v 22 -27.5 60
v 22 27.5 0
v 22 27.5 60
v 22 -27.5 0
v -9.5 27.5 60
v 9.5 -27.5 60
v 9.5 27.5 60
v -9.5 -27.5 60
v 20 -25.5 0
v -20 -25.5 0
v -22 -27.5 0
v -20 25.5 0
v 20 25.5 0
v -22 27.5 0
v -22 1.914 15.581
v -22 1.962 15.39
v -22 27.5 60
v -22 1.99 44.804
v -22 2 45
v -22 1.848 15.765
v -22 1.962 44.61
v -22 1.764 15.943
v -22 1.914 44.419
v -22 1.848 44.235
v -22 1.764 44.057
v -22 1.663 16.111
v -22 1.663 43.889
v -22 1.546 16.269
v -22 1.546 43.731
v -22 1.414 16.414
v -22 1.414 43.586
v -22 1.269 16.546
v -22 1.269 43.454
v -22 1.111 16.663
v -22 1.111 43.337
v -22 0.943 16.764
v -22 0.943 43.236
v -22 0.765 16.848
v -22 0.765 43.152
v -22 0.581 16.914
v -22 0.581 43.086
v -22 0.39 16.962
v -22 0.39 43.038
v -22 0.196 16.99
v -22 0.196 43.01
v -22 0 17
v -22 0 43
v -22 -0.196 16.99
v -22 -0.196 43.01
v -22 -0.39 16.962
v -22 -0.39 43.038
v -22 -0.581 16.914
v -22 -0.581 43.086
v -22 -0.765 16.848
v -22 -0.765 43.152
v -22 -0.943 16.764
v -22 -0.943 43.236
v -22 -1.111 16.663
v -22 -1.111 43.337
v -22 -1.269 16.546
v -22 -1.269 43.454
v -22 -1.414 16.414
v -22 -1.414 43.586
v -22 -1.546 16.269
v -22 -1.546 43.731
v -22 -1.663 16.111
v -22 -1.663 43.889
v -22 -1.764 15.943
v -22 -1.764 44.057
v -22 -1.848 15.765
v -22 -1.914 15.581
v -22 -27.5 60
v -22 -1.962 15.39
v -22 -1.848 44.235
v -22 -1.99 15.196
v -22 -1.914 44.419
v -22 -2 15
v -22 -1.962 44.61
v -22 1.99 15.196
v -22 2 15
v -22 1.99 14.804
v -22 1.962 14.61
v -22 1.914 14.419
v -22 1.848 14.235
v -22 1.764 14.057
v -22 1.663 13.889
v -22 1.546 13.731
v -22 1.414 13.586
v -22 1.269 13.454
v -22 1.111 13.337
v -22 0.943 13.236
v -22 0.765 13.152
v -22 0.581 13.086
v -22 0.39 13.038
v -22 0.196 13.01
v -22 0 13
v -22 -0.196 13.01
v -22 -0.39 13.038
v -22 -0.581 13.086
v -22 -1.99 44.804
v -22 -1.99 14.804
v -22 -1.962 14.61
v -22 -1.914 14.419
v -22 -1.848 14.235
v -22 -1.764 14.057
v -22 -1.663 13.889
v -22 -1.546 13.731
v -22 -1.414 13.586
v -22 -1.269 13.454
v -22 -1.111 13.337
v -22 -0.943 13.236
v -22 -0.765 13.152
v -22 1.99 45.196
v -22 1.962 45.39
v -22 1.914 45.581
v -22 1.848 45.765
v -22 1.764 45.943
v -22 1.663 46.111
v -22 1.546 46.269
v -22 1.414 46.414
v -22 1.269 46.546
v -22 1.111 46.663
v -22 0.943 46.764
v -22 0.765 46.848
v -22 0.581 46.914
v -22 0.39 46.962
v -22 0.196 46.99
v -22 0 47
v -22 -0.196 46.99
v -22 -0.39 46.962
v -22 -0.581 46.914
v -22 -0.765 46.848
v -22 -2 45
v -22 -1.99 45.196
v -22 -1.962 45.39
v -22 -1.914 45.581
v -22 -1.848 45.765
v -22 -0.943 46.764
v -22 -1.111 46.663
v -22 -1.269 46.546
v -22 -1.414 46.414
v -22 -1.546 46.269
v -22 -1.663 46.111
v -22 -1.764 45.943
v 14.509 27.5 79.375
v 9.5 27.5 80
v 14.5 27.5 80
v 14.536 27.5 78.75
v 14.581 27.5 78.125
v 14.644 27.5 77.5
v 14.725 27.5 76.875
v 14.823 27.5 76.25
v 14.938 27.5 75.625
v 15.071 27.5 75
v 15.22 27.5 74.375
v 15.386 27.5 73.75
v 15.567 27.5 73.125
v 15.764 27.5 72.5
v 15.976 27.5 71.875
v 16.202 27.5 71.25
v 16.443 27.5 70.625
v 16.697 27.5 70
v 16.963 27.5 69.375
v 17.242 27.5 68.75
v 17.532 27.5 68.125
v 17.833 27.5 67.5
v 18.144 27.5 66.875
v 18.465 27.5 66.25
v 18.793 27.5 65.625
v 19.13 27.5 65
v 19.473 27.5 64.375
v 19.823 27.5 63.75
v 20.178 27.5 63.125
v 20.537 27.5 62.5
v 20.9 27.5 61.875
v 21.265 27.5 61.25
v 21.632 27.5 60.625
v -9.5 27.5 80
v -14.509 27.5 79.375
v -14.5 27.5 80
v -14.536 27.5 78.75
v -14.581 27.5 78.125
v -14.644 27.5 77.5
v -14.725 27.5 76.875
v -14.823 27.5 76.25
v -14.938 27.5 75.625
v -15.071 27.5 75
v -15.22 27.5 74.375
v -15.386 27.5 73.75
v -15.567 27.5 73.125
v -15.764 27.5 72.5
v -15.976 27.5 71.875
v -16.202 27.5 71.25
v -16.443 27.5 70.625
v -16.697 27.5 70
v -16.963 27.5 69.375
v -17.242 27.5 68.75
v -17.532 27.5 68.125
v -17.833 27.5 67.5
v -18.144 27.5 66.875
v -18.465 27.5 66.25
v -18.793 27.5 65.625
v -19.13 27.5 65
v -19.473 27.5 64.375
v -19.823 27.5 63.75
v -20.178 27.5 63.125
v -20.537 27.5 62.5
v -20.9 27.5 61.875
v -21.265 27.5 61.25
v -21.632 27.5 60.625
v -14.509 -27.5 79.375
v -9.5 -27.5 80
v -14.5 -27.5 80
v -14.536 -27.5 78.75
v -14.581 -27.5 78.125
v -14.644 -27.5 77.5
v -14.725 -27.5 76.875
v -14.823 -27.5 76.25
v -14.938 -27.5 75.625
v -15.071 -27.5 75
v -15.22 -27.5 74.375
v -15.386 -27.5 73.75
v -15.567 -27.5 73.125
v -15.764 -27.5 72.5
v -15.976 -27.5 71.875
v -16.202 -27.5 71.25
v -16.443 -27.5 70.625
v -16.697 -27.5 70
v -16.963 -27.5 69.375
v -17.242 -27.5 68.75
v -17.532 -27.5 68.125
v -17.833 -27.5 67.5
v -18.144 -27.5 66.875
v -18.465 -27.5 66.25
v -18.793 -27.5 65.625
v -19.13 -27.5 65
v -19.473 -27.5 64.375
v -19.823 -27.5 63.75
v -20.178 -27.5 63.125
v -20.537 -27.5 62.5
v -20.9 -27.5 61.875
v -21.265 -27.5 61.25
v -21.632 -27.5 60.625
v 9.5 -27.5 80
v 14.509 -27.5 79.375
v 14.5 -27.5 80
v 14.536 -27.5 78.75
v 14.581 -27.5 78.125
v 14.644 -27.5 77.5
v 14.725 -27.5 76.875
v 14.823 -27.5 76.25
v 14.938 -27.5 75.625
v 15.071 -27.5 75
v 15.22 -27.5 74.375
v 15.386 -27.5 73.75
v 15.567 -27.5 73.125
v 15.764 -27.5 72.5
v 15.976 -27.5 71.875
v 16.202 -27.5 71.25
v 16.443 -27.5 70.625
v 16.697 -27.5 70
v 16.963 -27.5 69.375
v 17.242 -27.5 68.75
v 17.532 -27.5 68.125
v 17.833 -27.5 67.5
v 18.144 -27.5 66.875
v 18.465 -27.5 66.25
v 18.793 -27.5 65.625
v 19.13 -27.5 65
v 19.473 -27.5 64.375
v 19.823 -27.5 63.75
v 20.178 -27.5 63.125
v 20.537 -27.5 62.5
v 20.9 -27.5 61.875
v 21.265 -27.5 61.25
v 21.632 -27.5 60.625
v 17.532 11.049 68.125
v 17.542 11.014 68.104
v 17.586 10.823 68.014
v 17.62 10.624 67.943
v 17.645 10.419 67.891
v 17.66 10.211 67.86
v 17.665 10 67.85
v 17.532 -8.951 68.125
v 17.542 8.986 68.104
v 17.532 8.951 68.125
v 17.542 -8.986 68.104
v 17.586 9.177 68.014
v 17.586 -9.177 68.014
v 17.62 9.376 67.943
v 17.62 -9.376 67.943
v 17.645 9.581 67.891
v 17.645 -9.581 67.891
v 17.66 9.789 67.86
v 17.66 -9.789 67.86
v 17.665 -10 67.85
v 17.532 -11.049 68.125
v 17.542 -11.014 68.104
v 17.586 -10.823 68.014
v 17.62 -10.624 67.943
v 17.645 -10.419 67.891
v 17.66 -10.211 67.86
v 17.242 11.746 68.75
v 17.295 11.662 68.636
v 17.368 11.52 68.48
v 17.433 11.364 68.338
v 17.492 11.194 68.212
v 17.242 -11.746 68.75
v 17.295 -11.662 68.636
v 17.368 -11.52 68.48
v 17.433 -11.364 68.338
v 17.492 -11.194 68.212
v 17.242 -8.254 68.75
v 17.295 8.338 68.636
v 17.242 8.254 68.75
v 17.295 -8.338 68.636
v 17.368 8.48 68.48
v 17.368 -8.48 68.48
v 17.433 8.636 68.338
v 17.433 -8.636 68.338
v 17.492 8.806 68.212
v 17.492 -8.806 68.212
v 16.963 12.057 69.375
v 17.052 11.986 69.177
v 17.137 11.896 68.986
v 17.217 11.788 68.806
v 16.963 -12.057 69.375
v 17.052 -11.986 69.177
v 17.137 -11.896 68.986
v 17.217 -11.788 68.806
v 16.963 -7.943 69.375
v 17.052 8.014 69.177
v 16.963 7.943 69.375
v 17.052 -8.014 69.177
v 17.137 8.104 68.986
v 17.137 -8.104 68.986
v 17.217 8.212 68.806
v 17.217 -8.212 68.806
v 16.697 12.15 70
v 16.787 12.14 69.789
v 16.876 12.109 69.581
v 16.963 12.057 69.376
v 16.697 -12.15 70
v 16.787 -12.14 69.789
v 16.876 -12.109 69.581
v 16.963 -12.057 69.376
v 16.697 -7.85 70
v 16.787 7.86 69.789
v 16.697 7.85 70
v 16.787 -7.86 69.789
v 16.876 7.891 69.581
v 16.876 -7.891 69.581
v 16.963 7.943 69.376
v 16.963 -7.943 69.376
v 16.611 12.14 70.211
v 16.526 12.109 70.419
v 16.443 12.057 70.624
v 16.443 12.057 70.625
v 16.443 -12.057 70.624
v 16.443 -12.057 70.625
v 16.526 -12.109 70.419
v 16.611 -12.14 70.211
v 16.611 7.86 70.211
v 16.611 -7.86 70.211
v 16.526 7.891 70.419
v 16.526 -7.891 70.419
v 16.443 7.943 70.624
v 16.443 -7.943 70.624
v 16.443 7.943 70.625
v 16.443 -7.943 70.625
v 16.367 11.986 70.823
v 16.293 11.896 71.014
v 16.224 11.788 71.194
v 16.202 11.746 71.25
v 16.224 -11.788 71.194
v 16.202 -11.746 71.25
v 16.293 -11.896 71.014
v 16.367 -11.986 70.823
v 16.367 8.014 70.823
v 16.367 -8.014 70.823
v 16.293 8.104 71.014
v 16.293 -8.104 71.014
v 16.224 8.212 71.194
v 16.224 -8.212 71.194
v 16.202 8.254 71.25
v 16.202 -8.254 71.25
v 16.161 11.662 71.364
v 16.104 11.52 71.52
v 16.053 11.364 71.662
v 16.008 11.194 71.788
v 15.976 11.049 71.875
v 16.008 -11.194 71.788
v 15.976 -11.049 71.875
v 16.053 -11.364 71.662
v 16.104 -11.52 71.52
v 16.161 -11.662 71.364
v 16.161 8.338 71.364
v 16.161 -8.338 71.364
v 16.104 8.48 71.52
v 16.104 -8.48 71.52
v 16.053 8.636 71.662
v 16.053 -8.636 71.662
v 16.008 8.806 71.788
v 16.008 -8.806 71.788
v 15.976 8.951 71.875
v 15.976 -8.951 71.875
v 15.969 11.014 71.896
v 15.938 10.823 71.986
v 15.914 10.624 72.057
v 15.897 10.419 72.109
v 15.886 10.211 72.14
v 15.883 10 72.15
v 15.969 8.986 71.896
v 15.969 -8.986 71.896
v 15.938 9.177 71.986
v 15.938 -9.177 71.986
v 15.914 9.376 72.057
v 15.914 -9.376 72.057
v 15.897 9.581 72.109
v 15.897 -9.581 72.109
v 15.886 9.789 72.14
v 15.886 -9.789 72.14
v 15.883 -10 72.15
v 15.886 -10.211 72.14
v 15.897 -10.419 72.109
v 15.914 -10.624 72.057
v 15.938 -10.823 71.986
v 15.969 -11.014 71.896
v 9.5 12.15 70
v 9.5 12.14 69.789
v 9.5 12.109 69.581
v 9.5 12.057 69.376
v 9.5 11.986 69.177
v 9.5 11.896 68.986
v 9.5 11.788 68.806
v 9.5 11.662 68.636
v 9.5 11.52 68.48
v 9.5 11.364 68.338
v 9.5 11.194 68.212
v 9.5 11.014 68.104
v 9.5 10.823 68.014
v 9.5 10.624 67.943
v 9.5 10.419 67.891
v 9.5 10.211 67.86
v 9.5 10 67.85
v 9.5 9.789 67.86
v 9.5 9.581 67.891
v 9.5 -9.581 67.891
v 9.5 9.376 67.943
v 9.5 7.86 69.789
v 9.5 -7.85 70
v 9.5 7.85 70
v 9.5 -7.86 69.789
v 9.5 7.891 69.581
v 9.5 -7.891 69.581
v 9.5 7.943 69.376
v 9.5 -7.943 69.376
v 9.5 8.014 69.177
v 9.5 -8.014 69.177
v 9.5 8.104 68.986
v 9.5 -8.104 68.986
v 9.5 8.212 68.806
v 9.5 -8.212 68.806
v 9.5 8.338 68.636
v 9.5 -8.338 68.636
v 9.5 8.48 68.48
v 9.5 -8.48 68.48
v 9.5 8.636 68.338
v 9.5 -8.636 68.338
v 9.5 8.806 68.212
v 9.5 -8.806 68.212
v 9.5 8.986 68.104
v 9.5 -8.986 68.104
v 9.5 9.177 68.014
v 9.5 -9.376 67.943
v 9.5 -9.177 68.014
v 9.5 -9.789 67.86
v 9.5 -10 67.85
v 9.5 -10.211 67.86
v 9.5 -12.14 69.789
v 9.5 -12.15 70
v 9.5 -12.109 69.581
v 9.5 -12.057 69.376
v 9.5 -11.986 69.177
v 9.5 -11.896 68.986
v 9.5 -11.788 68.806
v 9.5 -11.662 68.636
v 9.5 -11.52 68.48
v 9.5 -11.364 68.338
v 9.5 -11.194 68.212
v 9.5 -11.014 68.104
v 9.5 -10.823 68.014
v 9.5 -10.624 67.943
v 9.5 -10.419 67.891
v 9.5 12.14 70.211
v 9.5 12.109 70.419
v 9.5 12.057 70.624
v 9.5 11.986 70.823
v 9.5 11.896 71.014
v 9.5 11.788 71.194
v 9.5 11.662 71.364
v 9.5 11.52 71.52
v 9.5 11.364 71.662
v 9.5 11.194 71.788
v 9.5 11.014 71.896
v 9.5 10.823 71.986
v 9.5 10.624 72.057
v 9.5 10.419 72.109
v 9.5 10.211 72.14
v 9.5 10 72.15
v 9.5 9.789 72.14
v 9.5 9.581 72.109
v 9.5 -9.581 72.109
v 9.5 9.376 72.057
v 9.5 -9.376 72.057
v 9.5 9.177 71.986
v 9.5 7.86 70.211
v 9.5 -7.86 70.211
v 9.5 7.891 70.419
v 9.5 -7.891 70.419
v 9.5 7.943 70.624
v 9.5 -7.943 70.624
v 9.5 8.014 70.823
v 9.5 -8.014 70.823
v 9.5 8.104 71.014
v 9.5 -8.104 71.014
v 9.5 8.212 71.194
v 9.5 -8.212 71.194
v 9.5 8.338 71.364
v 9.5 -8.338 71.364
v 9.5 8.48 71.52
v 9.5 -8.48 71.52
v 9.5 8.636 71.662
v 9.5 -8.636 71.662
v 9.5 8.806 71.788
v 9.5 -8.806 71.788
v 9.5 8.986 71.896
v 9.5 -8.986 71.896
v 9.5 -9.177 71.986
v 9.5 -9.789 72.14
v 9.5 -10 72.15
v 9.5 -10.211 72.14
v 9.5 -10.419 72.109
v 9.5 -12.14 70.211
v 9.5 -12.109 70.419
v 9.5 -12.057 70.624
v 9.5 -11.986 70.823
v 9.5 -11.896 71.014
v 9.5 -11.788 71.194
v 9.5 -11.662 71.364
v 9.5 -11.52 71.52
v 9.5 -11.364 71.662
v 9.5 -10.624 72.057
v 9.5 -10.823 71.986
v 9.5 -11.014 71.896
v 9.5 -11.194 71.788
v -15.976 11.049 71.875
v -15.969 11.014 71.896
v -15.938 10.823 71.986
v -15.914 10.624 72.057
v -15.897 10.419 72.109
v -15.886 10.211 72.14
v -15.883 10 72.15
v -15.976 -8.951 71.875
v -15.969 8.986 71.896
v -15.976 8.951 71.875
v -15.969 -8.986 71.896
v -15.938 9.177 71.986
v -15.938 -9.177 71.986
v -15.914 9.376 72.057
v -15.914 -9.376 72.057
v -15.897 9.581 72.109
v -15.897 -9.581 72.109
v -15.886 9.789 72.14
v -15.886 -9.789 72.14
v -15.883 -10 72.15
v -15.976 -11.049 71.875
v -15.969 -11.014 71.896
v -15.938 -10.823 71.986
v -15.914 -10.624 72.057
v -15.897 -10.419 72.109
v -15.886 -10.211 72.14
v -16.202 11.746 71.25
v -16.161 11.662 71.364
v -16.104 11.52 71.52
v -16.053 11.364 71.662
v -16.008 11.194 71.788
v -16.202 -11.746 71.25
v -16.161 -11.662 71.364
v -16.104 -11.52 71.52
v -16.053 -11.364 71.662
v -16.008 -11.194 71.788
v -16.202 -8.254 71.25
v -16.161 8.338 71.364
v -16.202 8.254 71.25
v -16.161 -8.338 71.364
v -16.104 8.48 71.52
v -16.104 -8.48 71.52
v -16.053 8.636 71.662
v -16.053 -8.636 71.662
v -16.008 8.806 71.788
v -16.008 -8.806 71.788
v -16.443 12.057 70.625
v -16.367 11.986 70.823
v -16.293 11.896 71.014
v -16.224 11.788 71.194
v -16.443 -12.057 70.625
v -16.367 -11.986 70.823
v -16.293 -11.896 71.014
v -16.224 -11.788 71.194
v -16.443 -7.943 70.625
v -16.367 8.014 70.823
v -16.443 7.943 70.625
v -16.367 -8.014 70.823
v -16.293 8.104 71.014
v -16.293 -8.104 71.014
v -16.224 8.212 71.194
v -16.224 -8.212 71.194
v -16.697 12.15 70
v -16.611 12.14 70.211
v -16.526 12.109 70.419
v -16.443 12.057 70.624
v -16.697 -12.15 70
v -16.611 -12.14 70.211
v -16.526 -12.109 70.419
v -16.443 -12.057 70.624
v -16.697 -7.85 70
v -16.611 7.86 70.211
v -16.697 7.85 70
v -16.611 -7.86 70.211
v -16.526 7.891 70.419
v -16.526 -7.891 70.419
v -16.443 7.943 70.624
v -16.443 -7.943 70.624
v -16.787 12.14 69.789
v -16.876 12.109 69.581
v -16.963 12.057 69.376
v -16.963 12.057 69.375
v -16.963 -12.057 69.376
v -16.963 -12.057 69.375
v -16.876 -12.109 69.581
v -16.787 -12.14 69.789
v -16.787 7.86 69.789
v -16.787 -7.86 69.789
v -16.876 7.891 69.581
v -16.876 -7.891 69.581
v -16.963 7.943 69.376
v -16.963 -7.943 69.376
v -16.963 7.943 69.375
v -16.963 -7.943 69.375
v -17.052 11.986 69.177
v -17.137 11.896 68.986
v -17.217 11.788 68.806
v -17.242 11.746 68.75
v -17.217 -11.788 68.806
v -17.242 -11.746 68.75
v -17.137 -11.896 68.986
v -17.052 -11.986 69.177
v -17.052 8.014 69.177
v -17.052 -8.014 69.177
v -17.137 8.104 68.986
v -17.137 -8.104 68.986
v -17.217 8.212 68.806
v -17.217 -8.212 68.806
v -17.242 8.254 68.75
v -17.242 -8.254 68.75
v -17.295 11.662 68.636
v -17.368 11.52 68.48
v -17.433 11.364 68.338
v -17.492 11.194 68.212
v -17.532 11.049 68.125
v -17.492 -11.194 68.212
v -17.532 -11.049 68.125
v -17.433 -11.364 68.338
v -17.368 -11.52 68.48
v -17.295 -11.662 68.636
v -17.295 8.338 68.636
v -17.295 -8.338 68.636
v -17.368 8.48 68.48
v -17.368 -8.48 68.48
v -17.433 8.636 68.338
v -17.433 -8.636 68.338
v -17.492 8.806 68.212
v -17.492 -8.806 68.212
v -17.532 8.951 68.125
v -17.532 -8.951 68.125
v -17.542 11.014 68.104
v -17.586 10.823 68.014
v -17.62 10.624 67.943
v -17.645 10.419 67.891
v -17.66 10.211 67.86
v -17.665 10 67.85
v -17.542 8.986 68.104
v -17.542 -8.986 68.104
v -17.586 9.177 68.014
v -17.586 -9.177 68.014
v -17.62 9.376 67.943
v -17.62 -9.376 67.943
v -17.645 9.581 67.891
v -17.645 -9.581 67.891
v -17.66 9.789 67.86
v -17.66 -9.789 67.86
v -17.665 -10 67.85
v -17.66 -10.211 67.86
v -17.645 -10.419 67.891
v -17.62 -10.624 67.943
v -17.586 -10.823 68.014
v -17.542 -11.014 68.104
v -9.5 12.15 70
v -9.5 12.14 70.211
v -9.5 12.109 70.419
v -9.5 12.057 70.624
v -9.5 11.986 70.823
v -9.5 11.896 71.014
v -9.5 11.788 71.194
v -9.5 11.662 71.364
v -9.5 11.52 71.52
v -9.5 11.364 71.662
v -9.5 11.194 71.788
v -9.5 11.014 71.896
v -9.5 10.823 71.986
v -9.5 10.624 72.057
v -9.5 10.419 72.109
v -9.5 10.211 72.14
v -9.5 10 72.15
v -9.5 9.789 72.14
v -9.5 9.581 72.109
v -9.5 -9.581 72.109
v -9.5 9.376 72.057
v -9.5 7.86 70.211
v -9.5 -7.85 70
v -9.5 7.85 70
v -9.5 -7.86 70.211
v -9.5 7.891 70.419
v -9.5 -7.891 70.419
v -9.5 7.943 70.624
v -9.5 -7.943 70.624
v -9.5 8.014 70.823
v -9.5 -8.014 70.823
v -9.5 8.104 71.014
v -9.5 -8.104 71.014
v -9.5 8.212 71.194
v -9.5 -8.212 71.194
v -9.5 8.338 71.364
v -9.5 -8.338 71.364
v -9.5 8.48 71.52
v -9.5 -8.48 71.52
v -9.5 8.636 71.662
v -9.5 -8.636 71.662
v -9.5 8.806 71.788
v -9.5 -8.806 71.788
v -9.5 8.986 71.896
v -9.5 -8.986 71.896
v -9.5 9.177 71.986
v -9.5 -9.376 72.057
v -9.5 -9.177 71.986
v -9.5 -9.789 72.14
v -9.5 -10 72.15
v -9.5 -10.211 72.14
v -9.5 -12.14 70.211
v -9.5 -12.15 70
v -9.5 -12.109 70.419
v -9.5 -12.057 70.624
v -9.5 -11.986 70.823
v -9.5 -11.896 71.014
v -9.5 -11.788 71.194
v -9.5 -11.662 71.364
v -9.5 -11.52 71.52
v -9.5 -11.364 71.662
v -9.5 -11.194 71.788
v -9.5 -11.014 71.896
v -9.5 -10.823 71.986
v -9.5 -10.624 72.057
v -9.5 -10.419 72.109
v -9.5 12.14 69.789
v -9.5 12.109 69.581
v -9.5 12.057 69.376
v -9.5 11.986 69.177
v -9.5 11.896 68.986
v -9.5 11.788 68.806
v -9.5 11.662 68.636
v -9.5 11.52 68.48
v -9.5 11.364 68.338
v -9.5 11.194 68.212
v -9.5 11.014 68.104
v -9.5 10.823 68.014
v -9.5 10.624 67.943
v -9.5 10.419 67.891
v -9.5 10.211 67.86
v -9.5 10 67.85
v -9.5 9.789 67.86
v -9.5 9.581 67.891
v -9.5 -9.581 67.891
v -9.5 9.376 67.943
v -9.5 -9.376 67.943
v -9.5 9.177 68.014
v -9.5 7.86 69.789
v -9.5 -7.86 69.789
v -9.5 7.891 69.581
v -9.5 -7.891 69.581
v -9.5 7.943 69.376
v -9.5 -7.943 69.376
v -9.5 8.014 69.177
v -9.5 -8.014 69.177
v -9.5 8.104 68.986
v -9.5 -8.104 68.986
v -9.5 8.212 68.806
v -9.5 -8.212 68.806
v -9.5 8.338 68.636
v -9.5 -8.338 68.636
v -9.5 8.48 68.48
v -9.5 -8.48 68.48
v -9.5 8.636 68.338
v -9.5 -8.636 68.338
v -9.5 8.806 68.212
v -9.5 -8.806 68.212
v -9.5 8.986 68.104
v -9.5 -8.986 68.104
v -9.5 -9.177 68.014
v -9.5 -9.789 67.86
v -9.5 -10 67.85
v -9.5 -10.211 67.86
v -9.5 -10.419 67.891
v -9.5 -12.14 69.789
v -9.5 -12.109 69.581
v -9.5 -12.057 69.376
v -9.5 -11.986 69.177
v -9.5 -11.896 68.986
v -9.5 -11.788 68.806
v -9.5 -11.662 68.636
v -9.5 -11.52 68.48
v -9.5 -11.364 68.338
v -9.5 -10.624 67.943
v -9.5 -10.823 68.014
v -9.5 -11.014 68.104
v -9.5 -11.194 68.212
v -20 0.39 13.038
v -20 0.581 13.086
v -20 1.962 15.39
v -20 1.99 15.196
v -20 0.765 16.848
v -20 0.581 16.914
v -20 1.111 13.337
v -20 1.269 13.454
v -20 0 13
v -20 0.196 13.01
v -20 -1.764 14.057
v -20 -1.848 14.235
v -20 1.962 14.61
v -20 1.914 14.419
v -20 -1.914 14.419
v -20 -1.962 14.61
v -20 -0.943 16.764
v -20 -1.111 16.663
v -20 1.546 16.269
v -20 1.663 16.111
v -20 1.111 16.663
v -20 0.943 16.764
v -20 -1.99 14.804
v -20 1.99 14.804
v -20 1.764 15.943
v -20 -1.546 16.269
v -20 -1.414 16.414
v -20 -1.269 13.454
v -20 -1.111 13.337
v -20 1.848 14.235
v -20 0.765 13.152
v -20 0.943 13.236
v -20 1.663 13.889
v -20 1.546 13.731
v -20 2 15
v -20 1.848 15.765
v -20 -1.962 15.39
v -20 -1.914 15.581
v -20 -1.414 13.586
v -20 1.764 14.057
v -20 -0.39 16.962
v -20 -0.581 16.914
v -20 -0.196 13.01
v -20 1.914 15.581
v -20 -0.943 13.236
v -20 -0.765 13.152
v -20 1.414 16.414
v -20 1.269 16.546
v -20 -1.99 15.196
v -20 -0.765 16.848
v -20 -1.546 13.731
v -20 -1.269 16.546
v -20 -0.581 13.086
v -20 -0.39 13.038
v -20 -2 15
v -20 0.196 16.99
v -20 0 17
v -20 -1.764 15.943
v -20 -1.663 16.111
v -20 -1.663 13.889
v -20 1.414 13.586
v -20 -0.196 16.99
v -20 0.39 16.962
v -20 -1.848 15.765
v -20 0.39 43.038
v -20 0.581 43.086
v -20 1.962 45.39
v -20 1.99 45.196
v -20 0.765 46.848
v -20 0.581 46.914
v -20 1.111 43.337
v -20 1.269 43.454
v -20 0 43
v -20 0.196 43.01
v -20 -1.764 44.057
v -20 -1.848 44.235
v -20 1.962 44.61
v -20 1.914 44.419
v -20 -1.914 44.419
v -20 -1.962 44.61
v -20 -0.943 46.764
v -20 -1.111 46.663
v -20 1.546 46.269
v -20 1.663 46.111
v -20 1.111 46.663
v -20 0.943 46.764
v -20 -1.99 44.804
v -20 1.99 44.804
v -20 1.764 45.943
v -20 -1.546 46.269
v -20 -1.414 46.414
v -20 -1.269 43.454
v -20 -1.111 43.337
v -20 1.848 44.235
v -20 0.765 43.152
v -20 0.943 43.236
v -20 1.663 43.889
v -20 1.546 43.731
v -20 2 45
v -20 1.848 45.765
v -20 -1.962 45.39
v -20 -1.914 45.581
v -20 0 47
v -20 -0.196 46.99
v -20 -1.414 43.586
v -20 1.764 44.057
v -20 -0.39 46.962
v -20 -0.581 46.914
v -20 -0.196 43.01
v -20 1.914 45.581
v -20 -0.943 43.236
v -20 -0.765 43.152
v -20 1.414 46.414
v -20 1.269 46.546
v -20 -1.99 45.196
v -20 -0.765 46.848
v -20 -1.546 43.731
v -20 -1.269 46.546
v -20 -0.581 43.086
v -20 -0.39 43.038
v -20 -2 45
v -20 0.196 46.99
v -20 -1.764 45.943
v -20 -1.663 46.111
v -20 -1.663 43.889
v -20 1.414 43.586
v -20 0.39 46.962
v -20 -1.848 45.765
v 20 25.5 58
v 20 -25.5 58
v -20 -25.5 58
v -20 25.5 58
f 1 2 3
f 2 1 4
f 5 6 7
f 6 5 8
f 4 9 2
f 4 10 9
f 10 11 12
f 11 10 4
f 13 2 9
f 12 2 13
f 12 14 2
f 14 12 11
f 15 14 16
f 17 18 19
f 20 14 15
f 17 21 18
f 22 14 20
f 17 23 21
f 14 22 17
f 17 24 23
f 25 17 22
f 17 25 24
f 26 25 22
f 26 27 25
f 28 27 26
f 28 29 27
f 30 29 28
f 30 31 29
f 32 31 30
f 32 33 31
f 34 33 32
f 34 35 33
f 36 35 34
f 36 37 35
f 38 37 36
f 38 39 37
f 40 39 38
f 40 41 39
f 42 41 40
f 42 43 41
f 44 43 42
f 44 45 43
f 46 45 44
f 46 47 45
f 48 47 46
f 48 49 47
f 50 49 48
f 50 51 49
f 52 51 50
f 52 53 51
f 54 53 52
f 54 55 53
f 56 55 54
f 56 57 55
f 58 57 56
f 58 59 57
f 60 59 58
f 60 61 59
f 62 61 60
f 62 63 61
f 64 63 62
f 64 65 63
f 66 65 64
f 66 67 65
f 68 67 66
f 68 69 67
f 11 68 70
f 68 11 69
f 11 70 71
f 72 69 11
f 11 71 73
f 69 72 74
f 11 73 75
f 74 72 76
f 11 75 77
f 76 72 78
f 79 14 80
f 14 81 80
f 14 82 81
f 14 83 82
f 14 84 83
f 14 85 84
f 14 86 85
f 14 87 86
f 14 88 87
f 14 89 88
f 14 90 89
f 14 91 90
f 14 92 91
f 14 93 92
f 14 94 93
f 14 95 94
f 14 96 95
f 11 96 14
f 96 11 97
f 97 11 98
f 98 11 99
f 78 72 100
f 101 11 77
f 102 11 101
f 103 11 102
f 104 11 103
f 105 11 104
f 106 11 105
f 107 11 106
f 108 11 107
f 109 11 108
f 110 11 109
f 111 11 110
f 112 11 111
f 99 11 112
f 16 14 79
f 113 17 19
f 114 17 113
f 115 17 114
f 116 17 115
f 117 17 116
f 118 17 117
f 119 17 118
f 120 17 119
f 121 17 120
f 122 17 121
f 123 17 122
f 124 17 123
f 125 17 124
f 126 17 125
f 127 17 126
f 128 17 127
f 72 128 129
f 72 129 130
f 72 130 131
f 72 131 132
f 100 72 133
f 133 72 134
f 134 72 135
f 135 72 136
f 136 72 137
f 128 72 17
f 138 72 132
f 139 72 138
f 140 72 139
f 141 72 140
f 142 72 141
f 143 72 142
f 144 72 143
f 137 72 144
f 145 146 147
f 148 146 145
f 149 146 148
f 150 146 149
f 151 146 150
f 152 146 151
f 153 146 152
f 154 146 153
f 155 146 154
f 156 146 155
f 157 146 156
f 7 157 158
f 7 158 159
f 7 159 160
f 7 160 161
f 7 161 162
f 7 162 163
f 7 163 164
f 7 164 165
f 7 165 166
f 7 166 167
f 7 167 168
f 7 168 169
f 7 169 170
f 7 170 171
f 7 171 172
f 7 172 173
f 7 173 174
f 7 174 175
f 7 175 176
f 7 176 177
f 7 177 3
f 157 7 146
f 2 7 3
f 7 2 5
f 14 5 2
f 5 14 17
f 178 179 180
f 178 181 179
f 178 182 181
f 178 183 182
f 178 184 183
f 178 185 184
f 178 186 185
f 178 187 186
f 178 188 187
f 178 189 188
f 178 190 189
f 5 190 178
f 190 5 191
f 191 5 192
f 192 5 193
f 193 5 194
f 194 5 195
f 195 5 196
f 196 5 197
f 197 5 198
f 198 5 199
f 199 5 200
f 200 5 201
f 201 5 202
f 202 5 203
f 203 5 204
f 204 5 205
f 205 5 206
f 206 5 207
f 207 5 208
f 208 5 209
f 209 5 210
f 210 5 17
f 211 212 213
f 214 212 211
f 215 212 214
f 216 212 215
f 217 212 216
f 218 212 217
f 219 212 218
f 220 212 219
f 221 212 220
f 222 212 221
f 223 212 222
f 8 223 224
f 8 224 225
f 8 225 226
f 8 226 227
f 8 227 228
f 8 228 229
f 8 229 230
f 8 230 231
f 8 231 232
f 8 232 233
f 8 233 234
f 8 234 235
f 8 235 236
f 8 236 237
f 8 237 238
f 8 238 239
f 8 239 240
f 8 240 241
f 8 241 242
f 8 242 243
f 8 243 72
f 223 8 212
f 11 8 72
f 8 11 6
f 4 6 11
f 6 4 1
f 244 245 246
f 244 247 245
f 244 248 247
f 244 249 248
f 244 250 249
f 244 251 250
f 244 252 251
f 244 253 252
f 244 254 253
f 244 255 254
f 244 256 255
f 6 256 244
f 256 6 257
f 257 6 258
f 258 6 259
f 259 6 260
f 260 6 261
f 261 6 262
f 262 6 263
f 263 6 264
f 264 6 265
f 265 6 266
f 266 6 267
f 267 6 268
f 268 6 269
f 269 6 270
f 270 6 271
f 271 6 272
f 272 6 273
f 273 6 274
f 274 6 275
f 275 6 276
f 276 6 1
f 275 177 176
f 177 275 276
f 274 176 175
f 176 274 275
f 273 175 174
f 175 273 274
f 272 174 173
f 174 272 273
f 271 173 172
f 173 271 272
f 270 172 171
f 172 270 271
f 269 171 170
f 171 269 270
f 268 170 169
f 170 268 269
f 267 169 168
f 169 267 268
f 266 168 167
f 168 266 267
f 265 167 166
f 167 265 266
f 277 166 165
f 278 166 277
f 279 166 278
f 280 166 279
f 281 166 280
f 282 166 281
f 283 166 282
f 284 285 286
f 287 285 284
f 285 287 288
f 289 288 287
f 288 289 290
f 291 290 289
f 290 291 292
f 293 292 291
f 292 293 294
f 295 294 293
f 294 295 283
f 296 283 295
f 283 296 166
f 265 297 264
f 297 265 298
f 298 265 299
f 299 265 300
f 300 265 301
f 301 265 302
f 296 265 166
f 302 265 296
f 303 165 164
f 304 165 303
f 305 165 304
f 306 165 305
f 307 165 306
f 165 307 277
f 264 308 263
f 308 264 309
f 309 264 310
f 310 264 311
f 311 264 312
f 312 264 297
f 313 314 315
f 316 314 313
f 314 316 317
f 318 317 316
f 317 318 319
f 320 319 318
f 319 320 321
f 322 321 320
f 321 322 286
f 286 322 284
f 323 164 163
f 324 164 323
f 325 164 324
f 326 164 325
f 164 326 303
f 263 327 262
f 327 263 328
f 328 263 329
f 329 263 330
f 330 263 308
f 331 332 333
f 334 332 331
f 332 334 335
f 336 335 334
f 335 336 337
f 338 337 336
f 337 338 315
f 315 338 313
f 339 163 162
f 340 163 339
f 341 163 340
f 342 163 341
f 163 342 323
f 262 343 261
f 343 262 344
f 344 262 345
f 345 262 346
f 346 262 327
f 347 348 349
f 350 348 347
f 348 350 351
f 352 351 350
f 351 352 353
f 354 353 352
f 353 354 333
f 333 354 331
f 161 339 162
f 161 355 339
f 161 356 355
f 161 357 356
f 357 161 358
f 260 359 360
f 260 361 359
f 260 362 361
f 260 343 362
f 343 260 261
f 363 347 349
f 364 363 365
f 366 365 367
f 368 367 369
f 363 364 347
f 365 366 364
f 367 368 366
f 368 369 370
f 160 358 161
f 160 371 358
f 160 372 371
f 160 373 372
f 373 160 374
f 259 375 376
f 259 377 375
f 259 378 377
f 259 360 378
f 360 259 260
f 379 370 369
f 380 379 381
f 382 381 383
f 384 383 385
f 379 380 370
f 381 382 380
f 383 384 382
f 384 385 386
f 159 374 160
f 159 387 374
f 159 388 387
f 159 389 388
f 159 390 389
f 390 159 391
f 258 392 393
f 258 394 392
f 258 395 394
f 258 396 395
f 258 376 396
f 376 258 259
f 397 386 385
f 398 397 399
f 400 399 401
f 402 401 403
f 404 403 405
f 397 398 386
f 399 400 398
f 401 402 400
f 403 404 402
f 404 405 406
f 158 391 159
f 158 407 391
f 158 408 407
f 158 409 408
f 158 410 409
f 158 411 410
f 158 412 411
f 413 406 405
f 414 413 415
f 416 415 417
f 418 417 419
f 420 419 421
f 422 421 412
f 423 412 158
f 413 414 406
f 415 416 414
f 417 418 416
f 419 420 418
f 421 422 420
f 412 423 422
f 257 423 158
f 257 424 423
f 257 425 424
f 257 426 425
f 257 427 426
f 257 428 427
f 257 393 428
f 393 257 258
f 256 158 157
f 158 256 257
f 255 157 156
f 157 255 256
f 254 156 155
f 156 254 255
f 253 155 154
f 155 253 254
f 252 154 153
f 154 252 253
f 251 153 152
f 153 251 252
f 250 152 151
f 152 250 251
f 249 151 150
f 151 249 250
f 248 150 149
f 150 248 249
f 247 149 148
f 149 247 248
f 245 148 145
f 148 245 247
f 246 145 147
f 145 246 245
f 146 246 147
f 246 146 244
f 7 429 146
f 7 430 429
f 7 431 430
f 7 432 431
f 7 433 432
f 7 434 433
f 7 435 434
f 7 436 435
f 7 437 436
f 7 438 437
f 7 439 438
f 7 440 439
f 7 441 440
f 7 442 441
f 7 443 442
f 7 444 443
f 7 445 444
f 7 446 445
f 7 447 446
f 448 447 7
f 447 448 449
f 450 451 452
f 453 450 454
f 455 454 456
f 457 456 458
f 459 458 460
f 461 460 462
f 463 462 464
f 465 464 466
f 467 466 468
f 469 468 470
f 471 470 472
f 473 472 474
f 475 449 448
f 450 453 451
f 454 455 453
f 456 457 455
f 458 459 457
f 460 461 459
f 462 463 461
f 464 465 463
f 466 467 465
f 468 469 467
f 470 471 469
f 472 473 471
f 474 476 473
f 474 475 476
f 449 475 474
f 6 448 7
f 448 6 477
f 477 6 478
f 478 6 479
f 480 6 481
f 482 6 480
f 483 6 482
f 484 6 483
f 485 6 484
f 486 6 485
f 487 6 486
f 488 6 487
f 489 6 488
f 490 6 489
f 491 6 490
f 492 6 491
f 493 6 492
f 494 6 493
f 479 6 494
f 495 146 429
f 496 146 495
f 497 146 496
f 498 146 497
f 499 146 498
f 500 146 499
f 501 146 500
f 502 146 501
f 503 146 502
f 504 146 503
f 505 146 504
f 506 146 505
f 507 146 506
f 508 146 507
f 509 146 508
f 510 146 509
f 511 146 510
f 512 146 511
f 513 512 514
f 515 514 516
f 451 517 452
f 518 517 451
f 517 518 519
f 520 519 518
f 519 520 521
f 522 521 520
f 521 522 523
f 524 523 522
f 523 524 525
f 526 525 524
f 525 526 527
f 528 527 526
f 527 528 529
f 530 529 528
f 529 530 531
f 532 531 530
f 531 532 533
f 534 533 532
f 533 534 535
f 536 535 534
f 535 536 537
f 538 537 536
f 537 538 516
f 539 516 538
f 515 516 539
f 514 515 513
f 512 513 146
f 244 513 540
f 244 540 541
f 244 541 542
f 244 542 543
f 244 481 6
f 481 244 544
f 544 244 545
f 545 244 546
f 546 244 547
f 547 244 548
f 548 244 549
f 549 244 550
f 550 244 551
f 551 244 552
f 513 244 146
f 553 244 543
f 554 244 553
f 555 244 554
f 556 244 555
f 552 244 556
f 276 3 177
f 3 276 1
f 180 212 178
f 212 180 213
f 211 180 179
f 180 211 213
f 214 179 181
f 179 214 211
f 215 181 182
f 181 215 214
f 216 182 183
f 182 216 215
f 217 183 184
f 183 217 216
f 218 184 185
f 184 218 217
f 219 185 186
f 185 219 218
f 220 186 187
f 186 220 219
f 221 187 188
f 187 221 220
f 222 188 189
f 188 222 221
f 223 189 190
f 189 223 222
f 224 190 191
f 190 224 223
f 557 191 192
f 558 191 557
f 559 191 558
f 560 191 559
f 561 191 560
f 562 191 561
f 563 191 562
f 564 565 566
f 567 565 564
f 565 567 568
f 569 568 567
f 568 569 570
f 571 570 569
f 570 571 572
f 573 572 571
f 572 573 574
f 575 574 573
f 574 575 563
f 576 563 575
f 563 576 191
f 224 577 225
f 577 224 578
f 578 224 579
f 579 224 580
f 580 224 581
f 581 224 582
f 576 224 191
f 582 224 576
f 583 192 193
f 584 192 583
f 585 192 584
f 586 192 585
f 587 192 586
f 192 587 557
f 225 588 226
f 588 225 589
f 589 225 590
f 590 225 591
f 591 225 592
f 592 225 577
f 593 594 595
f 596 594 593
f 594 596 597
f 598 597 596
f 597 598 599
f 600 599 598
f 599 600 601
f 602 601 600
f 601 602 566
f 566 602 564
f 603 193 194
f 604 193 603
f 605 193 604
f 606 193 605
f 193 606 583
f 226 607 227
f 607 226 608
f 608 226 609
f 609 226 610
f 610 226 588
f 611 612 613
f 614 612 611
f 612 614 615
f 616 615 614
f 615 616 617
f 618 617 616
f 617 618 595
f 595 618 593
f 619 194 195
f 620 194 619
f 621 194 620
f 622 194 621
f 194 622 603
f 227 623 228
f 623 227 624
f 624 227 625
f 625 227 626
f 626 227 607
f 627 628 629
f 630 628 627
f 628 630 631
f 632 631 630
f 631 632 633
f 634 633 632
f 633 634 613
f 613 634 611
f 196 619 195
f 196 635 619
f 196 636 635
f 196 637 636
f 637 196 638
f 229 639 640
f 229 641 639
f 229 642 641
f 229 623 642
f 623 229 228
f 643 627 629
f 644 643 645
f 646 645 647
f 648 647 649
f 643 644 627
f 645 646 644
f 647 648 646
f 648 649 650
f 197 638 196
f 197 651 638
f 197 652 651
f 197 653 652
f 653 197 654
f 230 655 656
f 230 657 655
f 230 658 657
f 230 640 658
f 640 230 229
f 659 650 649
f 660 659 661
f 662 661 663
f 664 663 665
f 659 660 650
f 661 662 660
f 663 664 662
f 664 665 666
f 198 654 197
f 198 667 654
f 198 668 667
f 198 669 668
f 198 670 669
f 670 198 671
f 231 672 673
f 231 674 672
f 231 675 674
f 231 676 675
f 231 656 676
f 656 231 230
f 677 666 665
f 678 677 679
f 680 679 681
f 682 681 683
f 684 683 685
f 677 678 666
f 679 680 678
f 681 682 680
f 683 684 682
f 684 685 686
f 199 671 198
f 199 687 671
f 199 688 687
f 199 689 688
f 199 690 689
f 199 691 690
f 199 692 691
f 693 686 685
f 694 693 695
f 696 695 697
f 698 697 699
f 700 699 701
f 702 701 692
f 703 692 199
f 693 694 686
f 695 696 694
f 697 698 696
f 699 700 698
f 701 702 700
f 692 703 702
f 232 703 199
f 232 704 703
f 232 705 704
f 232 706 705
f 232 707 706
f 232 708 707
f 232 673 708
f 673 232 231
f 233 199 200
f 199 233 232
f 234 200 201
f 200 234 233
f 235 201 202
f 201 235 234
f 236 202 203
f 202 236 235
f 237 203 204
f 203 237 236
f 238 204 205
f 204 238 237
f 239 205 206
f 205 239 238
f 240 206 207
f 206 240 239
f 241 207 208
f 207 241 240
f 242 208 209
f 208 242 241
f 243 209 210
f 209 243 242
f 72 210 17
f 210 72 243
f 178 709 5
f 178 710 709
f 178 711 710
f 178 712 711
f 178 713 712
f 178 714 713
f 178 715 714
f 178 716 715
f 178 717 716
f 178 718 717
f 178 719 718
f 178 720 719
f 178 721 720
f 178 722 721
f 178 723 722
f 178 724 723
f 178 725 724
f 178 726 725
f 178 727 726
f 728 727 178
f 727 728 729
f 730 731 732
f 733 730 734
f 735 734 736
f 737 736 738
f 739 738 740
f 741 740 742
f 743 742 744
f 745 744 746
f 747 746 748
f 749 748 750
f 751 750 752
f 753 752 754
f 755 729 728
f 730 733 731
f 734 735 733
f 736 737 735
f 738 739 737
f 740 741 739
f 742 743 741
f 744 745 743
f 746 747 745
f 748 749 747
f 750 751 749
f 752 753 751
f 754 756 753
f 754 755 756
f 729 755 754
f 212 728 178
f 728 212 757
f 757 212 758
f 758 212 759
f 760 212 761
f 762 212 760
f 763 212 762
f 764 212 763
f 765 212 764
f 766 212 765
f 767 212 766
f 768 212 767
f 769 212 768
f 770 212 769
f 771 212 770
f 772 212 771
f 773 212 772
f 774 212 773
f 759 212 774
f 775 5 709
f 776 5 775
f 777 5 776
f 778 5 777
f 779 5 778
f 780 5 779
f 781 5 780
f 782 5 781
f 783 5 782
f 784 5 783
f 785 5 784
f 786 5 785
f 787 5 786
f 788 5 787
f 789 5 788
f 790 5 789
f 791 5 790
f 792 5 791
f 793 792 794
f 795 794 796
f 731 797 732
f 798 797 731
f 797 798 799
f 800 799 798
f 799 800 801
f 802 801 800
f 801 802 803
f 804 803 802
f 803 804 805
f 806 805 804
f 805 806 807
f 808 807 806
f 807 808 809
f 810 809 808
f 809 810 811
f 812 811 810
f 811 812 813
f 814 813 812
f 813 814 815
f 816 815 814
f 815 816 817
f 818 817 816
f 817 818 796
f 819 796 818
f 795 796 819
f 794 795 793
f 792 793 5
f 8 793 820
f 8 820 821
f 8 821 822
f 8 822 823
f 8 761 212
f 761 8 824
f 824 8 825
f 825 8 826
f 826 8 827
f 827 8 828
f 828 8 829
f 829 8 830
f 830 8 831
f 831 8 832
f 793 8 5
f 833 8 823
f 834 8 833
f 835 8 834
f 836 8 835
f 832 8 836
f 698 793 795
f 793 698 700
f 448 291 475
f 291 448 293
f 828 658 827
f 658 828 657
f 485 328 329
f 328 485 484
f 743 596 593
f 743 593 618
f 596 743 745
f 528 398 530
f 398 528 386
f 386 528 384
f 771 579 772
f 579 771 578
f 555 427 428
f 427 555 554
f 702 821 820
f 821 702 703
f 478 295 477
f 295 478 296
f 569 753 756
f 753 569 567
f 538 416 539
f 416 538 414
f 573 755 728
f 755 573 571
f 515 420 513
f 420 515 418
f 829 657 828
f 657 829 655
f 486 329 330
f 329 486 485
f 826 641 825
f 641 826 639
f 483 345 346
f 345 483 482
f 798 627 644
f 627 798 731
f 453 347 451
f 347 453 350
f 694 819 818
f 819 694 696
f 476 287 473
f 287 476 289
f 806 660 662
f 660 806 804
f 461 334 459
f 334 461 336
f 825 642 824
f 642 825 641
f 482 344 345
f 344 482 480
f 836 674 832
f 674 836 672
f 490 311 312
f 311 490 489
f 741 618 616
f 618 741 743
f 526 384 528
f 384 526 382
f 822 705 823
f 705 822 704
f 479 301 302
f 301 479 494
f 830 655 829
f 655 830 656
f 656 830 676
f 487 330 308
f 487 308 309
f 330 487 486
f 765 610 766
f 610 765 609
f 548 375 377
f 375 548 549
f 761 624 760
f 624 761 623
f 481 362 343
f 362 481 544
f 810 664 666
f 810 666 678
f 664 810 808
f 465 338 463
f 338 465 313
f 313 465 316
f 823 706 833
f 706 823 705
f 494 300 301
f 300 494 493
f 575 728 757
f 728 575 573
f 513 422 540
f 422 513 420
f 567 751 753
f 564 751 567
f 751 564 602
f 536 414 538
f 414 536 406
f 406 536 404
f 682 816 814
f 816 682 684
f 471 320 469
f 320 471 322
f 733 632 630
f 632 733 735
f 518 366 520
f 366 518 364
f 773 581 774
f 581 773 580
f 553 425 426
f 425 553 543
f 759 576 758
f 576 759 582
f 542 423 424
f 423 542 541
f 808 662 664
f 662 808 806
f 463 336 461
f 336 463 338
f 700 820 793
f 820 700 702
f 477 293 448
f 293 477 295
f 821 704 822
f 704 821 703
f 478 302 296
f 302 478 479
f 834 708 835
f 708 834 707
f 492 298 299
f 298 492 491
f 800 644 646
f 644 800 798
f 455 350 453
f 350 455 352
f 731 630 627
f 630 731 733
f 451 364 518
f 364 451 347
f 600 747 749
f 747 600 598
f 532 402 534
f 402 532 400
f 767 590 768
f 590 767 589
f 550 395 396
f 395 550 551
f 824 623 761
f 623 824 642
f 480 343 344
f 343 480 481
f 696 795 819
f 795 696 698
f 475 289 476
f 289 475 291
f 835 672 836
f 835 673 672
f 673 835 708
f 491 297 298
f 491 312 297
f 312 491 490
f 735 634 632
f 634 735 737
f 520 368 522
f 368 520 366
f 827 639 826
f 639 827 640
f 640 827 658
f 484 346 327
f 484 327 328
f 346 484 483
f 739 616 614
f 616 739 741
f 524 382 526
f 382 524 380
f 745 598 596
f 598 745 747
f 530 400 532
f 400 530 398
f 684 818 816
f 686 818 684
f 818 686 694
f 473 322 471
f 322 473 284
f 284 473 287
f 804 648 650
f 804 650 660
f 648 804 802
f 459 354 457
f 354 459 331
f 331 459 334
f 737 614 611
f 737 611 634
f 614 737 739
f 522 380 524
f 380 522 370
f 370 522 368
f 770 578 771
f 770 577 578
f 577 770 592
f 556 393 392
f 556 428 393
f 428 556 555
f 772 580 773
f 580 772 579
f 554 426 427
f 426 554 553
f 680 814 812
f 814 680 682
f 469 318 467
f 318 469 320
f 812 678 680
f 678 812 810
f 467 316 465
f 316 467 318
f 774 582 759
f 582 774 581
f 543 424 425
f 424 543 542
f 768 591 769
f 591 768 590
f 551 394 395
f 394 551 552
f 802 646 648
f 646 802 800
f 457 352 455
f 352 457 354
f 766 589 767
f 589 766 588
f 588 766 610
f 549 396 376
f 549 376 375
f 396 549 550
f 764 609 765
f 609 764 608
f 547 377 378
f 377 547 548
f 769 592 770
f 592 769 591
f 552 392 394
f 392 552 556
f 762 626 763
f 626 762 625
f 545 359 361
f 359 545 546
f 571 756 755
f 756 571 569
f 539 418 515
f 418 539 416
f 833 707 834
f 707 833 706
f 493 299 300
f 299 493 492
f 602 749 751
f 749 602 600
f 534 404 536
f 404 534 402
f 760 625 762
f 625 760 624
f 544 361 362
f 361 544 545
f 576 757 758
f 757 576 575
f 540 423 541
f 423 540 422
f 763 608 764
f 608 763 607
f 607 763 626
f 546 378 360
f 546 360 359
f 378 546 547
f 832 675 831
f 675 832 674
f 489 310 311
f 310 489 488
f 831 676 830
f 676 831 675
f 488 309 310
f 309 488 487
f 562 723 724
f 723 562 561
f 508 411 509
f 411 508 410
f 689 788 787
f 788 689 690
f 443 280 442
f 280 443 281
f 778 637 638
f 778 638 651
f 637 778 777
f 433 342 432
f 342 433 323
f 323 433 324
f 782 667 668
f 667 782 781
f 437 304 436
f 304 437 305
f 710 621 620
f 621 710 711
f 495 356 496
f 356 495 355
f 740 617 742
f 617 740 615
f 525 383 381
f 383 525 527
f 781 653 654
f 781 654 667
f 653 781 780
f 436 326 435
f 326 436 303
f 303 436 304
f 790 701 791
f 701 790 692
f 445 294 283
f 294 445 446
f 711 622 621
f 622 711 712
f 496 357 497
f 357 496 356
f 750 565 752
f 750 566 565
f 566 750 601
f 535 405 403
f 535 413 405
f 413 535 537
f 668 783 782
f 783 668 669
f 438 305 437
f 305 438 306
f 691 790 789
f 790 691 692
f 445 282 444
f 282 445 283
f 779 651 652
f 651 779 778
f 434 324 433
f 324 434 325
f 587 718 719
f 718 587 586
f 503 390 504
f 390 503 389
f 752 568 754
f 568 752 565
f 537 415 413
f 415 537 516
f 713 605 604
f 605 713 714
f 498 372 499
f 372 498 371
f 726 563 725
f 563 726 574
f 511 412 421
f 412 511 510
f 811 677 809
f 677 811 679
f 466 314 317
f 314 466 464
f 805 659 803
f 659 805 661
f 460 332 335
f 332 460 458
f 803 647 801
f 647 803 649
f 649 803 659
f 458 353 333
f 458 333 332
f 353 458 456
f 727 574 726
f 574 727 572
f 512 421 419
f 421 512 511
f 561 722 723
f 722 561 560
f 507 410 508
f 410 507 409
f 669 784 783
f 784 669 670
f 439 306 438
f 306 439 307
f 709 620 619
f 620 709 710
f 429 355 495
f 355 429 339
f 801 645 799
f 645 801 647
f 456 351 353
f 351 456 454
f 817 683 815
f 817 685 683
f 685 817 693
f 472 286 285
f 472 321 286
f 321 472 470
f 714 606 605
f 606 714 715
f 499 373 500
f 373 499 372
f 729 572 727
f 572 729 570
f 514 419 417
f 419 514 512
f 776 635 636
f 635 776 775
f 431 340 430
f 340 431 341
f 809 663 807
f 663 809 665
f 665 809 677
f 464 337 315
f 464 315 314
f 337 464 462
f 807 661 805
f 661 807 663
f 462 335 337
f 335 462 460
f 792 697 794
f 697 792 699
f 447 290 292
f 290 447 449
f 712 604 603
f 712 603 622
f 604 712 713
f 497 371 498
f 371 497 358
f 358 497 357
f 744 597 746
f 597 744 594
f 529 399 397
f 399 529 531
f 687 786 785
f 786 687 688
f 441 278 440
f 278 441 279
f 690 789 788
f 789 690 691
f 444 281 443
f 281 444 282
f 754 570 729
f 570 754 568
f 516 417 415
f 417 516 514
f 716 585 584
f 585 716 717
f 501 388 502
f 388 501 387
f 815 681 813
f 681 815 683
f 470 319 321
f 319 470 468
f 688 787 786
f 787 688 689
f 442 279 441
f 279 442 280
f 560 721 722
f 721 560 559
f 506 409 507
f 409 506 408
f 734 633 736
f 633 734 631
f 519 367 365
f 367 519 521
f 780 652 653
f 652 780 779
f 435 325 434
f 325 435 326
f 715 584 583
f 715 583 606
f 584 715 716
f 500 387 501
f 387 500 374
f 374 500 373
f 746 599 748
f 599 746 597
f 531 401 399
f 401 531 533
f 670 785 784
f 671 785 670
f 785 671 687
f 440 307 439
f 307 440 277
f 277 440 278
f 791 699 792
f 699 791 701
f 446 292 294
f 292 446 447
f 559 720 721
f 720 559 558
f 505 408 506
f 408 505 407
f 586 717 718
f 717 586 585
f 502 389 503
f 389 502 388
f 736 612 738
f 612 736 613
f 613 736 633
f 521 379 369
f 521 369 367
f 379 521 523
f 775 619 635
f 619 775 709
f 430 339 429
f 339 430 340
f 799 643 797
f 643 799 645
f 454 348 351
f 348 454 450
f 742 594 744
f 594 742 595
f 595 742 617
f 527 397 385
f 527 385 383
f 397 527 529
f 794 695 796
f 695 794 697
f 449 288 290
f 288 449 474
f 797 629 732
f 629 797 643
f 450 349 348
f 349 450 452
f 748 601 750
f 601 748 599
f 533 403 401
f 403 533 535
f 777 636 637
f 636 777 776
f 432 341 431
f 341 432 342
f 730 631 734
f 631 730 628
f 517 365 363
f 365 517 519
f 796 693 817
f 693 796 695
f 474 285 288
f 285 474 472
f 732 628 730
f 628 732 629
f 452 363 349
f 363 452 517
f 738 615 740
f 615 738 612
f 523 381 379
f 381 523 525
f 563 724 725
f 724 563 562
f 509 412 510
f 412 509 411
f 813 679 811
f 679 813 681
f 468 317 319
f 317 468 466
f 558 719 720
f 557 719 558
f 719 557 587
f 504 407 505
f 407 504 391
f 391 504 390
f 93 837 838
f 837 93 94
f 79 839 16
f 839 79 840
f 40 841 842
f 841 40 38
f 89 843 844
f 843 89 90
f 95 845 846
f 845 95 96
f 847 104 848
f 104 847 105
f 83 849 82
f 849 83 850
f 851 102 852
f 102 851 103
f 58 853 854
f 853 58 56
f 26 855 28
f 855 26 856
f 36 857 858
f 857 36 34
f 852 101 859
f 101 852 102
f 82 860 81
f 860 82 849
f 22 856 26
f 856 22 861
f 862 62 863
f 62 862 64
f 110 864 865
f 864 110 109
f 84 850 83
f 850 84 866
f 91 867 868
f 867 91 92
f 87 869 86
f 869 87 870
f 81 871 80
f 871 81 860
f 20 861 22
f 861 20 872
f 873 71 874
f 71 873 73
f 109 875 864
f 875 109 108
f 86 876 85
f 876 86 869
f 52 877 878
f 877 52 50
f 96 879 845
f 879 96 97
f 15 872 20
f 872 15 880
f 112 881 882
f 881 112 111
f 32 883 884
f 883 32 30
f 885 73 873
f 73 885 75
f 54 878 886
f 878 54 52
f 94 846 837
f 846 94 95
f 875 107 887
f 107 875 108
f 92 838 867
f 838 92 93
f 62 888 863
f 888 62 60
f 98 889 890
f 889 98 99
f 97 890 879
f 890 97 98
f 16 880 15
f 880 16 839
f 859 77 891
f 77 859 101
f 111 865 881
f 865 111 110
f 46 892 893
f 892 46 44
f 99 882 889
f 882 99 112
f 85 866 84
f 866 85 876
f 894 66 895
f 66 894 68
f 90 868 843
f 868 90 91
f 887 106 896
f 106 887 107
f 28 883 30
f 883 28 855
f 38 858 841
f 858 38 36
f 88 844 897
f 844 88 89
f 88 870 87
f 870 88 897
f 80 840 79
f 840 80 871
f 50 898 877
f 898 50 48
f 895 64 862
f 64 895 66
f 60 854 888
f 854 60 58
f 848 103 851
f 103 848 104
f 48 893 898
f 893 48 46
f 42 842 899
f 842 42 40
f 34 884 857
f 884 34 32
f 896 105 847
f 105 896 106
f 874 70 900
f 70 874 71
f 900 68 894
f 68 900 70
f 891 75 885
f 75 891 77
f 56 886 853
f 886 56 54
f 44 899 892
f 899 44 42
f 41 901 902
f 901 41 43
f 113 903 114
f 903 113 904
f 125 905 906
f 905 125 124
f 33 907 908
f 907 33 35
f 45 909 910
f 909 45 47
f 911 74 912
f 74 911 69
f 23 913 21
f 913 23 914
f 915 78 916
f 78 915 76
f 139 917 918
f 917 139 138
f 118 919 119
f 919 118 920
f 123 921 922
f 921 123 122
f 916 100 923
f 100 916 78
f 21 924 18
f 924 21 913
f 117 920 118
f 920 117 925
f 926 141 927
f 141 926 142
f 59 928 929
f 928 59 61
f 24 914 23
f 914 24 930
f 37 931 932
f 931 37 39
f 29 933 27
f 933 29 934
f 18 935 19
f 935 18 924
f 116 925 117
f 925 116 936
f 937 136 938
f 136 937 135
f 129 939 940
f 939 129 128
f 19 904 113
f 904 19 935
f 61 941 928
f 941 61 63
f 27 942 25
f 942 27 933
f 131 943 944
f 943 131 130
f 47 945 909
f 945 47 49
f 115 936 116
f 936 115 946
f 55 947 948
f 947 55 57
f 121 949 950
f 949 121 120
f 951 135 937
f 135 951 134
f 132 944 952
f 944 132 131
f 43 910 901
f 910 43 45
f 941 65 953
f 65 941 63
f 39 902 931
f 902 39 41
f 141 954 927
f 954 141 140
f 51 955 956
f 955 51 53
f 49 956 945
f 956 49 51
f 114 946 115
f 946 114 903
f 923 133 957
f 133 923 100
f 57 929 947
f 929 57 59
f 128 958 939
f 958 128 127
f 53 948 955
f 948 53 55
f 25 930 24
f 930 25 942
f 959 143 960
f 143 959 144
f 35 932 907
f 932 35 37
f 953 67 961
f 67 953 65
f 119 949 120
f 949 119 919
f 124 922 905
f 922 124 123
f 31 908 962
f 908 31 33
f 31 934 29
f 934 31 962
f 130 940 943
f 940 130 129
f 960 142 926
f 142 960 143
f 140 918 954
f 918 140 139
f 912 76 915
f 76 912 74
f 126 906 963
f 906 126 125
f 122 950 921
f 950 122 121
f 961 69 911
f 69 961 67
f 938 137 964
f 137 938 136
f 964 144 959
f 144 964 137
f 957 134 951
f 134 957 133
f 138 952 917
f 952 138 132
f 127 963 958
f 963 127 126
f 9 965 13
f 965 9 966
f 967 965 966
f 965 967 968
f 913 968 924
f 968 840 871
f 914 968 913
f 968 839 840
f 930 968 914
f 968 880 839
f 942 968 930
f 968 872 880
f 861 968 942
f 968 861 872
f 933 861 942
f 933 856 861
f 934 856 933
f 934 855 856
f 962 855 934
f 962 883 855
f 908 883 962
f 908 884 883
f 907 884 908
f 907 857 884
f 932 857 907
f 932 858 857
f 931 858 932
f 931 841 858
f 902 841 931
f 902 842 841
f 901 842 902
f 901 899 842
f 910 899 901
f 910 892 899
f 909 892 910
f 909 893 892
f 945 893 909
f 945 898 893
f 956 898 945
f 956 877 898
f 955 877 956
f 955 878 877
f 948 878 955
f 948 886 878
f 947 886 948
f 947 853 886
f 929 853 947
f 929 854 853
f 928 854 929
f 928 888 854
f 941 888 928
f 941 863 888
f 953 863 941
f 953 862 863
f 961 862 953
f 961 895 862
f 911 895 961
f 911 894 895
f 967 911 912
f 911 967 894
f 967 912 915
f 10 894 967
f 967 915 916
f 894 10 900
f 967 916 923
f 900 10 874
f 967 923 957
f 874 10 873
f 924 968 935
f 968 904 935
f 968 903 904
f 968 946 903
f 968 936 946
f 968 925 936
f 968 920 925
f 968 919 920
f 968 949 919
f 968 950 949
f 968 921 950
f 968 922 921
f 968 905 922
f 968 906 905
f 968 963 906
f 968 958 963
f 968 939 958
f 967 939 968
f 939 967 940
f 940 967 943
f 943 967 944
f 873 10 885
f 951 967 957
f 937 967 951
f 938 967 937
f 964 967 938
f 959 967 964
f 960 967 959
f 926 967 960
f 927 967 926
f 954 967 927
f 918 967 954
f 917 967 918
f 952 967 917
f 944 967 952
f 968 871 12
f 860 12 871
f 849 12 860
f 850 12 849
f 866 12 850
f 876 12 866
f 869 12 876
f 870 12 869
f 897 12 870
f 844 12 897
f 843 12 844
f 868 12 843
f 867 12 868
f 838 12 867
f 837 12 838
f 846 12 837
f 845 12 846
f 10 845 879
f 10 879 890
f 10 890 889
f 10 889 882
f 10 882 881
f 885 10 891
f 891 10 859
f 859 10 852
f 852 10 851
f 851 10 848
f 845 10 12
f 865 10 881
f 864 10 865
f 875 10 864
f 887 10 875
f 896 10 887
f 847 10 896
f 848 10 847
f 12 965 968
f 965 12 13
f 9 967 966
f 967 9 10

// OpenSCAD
// =====================================================================
//  CORNER CAP with a chipboard socket (same wood as the arm corner cap)
//
//  Pushes onto the END of the rectangular wood, wraps all four sides and
//  closes the end. On top of the closed end sits a socket for chipboard:
//  a 19 mm wide, 20 mm deep slot, so the panel edge slides in along the
//  wood axis and is screwed through the socket jaws.
//
//  The socket starts at the full cap width and tapers to the mouth with
//  a concave "sail" curve, so it blends into the cap instead of forming
//  a blunt step.
//
//  Wood 40 x 51, same as hinge_bracket_arm_corner.scad.
//  No hinge interface: this cap only holds the panel.
// =====================================================================

/* [Wood] */
wood_width  = 51;    // Y
wood_depth  = 40;    // X
clearance   = 0;     // slip-fit gap

/* [Cap] */
wall        = 2;     // wall thickness
cap_thick   = 2;     // end plate thickness
body_len    = 60;    // how far the cap runs down the wood

/* [Panel socket] */
slot_w      = 19;    // slot width = panel thickness + clearance
slot_depth  = 20;    // insertion depth of the panel edge
slot_axis   = "X";   // [X, Y] panel thickness direction
slot_offset = 0;     // shift of the slot from centre
jaw_top     = 5;     // jaw thickness at the socket mouth
sail_seg    = 32;    // sail curve segments

/* [Panel screws]  (through the socket jaws into the panel) */
panel_screws   = true;
panel_screw_d  = 4.3;  // wood screw clearance
panel_screw_dy = 20;   // spacing across the panel face
panel_screw_z  = 10;   // from the socket mouth down to the screw row

/* [Locking] */
side_screws = true;  // extra screws through the -X wall into the wood
side_d      = 4;
side_dz     = 30;    // spacing of the back holes, stacked vertically (Z)

/* [View] */
part        = "assembly";  // [cap, wood, panel, assembly]
show_wood   = false;
show_panel  = false;

$fn = 64;

// ---------------------------------------------------------------------
outer_x = wood_depth + 2 * wall;
outer_y = wood_width + 2 * wall;

// z = 0 at the open bottom, z = body_len at the closed end face
z_end_plate = body_len - cap_thick;
socket_top  = body_len + slot_depth;

// socket dimensions: full width at the cap end, narrower at the mouth
thick_outer = slot_axis == "X" ? outer_x : outer_y;
through_len = slot_axis == "X" ? outer_y : outer_x;
base_half   = thick_outer / 2;
top_half    = slot_w / 2 + jaw_top;
sail_angle  = 90;

screw_z = socket_top - panel_screw_z;

function sail_x(sign, t) =
    let(base = sign * base_half,
        top  = slot_offset + sign * top_half)
    base + (top - base) * sin(t * sail_angle);

function sail_z(t) = body_len + t * slot_depth;

module wood() {
    translate([0, 0, z_end_plate - 100])
        color("burlywood", 0.75)
            cube([wood_depth, wood_width, 200], center = true);
}

module panel() {
    // chipboard edge sitting in the socket, continuing past the end
    color("sandybrown", 0.85)
        translate([slot_axis == "X" ? slot_offset : 0,
                   slot_axis == "Y" ? slot_offset : 0,
                   body_len + 60])
            if (slot_axis == "X")
                cube([slot_w - 1, 200, 120], center = true);
            else
                cube([200, slot_w - 1, 120], center = true);
}

module socket_local() {
    x_in_pos = slot_offset + slot_w / 2;
    x_in_neg = slot_offset - slot_w / 2;

    // +X jaw: inner face, base, concave sail, top
    right_pts = concat(
        [[x_in_pos, body_len]],
        [for (i = [0 : sail_seg])
            let(t = i / sail_seg)
                [sail_x(1, t), sail_z(t)]],
        [[x_in_pos, socket_top]]
    );

    // -X jaw: base, concave sail, top, inner face
    left_pts = concat(
        [[sail_x(-1, 0), body_len]],
        [for (i = [1 : sail_seg])
            let(t = i / sail_seg)
                [sail_x(-1, t), sail_z(t)]],
        [[x_in_neg, socket_top]],
        [[x_in_neg, body_len]]
    );

    rotate([90, 0, 0])
        linear_extrude(height = through_len, center = true) {
            polygon(right_pts);
            polygon(left_pts);
        }
}

module corner_cap() {
    difference() {
        union() {
            // walls + closed end
            translate([0, 0, body_len / 2])
                cube([outer_x, outer_y, body_len], center = true);

            // full-width socket with sail taper above the closed end
            rotate([0, 0, slot_axis == "X" ? 0 : 90])
                socket_local();
        }

        // inner pocket, open at the bottom (z = 0)
        translate([0, 0, (z_end_plate - 1) / 2])
            cube([wood_depth + clearance,
                  wood_width + clearance,
                  z_end_plate + 1], center = true);

        // panel screws through the socket jaws
        if (panel_screws)
            rotate([0, 0, slot_axis == "X" ? 0 : 90])
                for (sy = [-1, 1])
                    translate([0, sy * panel_screw_dy / 2, screw_z])
                        rotate([0, 90, 0])
                            cylinder(d = panel_screw_d,
                                     h = thick_outer + 2, center = true);

        // locking screws through the -X wall, stacked vertically
        if (side_screws)
            for (sz = [-1, 1])
                translate([-outer_x / 2, 0, body_len / 2 + sz * side_dz / 2])
                    rotate([0, 90, 0])
                        cylinder(d = side_d, h = wall + 15);
    }
}

// ---------------------------------------------------------------------
if (part == "wood") {
    wood();
} else if (part == "panel") {
    panel();
} else if (part == "cap") {
    corner_cap();
} else {
    corner_cap();
    if (show_wood) wood();
    if (show_panel) panel();
}
